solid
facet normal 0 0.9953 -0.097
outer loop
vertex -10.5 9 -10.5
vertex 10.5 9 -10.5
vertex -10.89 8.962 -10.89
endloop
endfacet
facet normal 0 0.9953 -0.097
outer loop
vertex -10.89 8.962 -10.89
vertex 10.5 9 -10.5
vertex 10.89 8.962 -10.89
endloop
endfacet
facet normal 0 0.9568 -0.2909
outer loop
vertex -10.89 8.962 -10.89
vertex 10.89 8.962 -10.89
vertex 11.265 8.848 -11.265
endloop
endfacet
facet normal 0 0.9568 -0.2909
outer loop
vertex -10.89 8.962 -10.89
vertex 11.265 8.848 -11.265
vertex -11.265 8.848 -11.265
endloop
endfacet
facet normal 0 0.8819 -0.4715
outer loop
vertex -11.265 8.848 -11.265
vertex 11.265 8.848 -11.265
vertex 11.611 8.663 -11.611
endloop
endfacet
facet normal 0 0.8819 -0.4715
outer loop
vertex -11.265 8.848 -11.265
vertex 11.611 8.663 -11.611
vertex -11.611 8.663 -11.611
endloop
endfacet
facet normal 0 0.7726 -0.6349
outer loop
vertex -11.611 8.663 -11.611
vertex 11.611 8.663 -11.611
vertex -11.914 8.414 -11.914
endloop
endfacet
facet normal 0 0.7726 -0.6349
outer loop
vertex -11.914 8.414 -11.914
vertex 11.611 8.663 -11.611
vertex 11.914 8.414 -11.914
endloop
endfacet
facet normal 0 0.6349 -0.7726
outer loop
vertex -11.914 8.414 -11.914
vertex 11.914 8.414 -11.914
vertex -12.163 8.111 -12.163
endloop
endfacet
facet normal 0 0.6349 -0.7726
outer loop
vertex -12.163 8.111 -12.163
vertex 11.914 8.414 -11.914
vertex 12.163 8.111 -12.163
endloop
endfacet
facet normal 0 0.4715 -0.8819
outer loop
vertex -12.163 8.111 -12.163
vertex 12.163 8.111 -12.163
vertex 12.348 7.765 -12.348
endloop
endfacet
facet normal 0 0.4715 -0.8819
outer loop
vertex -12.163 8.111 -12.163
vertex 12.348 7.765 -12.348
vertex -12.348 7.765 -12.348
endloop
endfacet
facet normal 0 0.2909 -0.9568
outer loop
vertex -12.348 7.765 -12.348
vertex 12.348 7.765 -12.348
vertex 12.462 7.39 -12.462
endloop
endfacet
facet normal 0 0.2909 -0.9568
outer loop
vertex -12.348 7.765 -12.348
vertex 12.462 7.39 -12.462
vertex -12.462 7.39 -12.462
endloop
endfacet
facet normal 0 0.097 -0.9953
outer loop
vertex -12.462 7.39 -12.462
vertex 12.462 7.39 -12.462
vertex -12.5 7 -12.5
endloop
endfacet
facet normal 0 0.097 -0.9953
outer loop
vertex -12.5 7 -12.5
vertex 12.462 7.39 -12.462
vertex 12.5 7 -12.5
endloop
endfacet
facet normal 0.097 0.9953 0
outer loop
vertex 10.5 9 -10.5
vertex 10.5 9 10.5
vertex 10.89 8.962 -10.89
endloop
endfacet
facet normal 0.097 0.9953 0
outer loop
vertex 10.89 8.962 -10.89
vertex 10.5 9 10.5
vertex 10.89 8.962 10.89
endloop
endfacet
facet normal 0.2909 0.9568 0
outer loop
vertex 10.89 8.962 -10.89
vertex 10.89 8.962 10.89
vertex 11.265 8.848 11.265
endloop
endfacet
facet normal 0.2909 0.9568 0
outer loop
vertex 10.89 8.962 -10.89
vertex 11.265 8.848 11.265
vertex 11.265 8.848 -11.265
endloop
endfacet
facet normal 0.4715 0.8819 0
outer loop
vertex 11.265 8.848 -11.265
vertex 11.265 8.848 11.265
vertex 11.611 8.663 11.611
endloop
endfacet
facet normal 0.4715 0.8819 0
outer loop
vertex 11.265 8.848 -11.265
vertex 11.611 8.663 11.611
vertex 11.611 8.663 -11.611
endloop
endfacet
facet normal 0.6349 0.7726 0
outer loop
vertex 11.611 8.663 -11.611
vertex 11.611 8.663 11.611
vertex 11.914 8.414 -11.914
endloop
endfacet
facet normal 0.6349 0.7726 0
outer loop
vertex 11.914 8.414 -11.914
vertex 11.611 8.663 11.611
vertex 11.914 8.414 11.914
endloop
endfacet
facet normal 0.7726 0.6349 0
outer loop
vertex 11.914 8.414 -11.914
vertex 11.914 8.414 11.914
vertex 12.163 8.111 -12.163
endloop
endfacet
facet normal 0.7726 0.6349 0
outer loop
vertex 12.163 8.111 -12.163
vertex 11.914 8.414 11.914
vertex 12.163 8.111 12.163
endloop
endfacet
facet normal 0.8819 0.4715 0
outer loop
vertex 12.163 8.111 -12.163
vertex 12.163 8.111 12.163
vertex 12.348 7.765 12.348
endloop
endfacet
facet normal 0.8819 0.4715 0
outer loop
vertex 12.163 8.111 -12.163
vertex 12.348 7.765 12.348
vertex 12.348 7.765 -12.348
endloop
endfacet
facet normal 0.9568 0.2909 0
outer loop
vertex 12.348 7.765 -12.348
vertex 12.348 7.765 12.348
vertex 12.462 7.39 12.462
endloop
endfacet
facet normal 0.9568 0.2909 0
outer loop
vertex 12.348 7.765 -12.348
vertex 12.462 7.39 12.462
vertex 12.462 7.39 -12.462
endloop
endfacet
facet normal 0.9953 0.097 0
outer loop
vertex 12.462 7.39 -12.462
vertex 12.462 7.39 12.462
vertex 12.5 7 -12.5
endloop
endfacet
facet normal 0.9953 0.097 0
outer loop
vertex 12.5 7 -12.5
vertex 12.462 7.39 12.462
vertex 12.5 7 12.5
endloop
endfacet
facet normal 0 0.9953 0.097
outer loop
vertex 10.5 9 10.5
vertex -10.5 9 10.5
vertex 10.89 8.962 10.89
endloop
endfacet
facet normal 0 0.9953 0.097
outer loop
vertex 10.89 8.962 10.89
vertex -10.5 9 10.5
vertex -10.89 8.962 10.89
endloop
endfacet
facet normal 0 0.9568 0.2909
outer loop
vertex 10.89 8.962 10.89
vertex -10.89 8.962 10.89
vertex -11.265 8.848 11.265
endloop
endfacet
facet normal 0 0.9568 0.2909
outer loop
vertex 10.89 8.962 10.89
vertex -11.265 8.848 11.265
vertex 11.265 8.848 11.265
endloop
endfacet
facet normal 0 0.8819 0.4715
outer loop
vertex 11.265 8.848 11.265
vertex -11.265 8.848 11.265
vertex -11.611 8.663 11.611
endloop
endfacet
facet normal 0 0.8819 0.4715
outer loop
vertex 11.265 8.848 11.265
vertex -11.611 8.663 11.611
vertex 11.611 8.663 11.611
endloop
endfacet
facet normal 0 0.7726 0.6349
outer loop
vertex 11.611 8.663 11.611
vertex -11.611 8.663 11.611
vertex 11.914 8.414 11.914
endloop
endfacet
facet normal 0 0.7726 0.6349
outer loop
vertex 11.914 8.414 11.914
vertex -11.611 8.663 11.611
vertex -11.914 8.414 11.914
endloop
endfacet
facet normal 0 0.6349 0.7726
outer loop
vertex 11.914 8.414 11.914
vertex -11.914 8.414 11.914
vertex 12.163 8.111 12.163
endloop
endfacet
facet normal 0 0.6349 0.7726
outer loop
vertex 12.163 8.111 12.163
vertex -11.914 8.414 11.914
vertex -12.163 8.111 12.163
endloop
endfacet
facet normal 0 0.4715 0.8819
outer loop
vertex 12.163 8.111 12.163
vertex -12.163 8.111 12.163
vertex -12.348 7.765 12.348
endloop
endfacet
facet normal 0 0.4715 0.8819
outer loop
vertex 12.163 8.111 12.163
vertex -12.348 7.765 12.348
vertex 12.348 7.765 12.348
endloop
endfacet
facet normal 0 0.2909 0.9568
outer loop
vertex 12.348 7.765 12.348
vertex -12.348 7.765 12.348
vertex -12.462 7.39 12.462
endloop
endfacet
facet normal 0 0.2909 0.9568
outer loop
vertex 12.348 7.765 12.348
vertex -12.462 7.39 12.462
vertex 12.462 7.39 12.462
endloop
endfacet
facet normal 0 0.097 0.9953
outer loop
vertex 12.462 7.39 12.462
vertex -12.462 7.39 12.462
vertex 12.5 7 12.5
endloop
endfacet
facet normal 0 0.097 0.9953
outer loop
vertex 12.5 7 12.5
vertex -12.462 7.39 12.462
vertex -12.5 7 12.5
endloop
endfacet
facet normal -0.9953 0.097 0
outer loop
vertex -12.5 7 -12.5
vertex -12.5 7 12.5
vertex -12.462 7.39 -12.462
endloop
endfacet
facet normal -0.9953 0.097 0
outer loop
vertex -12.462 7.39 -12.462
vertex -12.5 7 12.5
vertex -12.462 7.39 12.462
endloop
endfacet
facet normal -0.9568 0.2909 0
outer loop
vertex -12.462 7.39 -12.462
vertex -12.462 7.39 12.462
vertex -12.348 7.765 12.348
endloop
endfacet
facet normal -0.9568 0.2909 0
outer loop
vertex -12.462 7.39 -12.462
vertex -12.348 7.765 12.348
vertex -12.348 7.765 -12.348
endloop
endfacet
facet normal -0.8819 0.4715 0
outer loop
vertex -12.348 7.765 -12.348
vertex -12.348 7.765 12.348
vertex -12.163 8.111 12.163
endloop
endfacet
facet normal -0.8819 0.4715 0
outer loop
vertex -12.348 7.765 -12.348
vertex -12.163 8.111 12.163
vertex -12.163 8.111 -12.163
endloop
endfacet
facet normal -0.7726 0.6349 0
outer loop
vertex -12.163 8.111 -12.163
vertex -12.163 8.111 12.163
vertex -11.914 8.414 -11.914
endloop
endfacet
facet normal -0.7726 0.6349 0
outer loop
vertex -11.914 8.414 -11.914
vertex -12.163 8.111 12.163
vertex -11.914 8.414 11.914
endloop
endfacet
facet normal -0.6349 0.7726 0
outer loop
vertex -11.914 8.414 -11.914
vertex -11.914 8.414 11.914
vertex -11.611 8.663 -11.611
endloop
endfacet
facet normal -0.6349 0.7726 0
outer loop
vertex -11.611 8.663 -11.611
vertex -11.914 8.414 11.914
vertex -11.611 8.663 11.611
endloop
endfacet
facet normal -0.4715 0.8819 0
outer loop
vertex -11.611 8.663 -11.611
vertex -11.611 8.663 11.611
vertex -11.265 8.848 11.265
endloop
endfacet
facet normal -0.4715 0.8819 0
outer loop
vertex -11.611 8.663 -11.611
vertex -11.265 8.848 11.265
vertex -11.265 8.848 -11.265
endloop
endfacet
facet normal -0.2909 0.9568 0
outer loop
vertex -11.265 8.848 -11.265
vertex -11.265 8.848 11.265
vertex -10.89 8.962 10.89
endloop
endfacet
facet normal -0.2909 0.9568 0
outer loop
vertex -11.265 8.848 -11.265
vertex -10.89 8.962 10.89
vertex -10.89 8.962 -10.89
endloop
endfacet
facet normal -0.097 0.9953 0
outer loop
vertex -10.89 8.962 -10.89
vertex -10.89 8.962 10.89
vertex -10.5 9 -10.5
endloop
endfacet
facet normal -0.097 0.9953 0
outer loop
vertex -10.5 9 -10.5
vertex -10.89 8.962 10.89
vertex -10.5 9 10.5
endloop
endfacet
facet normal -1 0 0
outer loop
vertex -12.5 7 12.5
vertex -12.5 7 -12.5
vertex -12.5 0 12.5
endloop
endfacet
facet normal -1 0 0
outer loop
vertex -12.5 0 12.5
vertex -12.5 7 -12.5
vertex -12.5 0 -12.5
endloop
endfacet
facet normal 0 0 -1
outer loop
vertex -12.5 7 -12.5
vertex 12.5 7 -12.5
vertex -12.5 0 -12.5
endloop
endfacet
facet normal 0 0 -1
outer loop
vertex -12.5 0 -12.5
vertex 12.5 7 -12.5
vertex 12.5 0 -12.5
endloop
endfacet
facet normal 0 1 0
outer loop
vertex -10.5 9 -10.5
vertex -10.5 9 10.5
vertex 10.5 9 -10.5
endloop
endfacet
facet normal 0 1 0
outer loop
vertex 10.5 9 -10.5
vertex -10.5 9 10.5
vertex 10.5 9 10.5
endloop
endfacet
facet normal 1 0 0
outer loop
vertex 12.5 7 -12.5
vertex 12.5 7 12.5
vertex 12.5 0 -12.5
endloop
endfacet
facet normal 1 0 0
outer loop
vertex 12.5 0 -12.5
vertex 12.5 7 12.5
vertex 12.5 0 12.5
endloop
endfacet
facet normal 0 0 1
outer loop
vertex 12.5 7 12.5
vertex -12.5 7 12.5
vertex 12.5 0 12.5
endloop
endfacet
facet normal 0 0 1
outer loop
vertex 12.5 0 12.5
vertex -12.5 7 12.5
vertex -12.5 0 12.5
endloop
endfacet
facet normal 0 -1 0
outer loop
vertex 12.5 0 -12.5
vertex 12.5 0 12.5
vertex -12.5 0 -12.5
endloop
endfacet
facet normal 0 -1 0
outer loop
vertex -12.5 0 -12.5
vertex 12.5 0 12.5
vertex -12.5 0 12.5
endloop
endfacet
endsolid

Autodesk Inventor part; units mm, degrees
ref_plane "YZ Plane" through (0, 0, 0) normal (1, 0, 0) x (0, 1, 0)
ref_plane "XZ Plane" through (0, 0, 0) normal (0, 1, 0) x (-1, 0, 0)
ref_plane "XY Plane" through (0, 0, 0) normal (0, 0, 1) x (1, 0, 0)
sketch "Эскиз1" plane through (0, 0, 0) normal (0, 1, 0) x (-1, 0, 0)
  line L0 (-12.5, 12.5) -> (12.5, 12.5)
  line L1 (12.5, 12.5) -> (12.5, -12.5)
  line L2 (12.5, -12.5) -> (-12.5, -12.5)
  line L3 (-12.5, -12.5) -> (-12.5, 12.5)
  line L4 (-12.5, 12.5) -> (12.5, -12.5) construction
  line L5 (12.5, 12.5) -> (-12.5, -12.5) construction
  point P0 (0, 0)
  dimension "d0" = 25
extrude "Выдавливание1" add sketch "Эскиз1" along normal blind 9
fillet "Сопряжение1" radius 2 4 edges at (0, 9, 12.5) (12.5, 9, 0) (0, 9, -12.5) (-12.5, 9, 0)
properties part number "Антена GPS" material "Сталь нержавеющая, 440C"
